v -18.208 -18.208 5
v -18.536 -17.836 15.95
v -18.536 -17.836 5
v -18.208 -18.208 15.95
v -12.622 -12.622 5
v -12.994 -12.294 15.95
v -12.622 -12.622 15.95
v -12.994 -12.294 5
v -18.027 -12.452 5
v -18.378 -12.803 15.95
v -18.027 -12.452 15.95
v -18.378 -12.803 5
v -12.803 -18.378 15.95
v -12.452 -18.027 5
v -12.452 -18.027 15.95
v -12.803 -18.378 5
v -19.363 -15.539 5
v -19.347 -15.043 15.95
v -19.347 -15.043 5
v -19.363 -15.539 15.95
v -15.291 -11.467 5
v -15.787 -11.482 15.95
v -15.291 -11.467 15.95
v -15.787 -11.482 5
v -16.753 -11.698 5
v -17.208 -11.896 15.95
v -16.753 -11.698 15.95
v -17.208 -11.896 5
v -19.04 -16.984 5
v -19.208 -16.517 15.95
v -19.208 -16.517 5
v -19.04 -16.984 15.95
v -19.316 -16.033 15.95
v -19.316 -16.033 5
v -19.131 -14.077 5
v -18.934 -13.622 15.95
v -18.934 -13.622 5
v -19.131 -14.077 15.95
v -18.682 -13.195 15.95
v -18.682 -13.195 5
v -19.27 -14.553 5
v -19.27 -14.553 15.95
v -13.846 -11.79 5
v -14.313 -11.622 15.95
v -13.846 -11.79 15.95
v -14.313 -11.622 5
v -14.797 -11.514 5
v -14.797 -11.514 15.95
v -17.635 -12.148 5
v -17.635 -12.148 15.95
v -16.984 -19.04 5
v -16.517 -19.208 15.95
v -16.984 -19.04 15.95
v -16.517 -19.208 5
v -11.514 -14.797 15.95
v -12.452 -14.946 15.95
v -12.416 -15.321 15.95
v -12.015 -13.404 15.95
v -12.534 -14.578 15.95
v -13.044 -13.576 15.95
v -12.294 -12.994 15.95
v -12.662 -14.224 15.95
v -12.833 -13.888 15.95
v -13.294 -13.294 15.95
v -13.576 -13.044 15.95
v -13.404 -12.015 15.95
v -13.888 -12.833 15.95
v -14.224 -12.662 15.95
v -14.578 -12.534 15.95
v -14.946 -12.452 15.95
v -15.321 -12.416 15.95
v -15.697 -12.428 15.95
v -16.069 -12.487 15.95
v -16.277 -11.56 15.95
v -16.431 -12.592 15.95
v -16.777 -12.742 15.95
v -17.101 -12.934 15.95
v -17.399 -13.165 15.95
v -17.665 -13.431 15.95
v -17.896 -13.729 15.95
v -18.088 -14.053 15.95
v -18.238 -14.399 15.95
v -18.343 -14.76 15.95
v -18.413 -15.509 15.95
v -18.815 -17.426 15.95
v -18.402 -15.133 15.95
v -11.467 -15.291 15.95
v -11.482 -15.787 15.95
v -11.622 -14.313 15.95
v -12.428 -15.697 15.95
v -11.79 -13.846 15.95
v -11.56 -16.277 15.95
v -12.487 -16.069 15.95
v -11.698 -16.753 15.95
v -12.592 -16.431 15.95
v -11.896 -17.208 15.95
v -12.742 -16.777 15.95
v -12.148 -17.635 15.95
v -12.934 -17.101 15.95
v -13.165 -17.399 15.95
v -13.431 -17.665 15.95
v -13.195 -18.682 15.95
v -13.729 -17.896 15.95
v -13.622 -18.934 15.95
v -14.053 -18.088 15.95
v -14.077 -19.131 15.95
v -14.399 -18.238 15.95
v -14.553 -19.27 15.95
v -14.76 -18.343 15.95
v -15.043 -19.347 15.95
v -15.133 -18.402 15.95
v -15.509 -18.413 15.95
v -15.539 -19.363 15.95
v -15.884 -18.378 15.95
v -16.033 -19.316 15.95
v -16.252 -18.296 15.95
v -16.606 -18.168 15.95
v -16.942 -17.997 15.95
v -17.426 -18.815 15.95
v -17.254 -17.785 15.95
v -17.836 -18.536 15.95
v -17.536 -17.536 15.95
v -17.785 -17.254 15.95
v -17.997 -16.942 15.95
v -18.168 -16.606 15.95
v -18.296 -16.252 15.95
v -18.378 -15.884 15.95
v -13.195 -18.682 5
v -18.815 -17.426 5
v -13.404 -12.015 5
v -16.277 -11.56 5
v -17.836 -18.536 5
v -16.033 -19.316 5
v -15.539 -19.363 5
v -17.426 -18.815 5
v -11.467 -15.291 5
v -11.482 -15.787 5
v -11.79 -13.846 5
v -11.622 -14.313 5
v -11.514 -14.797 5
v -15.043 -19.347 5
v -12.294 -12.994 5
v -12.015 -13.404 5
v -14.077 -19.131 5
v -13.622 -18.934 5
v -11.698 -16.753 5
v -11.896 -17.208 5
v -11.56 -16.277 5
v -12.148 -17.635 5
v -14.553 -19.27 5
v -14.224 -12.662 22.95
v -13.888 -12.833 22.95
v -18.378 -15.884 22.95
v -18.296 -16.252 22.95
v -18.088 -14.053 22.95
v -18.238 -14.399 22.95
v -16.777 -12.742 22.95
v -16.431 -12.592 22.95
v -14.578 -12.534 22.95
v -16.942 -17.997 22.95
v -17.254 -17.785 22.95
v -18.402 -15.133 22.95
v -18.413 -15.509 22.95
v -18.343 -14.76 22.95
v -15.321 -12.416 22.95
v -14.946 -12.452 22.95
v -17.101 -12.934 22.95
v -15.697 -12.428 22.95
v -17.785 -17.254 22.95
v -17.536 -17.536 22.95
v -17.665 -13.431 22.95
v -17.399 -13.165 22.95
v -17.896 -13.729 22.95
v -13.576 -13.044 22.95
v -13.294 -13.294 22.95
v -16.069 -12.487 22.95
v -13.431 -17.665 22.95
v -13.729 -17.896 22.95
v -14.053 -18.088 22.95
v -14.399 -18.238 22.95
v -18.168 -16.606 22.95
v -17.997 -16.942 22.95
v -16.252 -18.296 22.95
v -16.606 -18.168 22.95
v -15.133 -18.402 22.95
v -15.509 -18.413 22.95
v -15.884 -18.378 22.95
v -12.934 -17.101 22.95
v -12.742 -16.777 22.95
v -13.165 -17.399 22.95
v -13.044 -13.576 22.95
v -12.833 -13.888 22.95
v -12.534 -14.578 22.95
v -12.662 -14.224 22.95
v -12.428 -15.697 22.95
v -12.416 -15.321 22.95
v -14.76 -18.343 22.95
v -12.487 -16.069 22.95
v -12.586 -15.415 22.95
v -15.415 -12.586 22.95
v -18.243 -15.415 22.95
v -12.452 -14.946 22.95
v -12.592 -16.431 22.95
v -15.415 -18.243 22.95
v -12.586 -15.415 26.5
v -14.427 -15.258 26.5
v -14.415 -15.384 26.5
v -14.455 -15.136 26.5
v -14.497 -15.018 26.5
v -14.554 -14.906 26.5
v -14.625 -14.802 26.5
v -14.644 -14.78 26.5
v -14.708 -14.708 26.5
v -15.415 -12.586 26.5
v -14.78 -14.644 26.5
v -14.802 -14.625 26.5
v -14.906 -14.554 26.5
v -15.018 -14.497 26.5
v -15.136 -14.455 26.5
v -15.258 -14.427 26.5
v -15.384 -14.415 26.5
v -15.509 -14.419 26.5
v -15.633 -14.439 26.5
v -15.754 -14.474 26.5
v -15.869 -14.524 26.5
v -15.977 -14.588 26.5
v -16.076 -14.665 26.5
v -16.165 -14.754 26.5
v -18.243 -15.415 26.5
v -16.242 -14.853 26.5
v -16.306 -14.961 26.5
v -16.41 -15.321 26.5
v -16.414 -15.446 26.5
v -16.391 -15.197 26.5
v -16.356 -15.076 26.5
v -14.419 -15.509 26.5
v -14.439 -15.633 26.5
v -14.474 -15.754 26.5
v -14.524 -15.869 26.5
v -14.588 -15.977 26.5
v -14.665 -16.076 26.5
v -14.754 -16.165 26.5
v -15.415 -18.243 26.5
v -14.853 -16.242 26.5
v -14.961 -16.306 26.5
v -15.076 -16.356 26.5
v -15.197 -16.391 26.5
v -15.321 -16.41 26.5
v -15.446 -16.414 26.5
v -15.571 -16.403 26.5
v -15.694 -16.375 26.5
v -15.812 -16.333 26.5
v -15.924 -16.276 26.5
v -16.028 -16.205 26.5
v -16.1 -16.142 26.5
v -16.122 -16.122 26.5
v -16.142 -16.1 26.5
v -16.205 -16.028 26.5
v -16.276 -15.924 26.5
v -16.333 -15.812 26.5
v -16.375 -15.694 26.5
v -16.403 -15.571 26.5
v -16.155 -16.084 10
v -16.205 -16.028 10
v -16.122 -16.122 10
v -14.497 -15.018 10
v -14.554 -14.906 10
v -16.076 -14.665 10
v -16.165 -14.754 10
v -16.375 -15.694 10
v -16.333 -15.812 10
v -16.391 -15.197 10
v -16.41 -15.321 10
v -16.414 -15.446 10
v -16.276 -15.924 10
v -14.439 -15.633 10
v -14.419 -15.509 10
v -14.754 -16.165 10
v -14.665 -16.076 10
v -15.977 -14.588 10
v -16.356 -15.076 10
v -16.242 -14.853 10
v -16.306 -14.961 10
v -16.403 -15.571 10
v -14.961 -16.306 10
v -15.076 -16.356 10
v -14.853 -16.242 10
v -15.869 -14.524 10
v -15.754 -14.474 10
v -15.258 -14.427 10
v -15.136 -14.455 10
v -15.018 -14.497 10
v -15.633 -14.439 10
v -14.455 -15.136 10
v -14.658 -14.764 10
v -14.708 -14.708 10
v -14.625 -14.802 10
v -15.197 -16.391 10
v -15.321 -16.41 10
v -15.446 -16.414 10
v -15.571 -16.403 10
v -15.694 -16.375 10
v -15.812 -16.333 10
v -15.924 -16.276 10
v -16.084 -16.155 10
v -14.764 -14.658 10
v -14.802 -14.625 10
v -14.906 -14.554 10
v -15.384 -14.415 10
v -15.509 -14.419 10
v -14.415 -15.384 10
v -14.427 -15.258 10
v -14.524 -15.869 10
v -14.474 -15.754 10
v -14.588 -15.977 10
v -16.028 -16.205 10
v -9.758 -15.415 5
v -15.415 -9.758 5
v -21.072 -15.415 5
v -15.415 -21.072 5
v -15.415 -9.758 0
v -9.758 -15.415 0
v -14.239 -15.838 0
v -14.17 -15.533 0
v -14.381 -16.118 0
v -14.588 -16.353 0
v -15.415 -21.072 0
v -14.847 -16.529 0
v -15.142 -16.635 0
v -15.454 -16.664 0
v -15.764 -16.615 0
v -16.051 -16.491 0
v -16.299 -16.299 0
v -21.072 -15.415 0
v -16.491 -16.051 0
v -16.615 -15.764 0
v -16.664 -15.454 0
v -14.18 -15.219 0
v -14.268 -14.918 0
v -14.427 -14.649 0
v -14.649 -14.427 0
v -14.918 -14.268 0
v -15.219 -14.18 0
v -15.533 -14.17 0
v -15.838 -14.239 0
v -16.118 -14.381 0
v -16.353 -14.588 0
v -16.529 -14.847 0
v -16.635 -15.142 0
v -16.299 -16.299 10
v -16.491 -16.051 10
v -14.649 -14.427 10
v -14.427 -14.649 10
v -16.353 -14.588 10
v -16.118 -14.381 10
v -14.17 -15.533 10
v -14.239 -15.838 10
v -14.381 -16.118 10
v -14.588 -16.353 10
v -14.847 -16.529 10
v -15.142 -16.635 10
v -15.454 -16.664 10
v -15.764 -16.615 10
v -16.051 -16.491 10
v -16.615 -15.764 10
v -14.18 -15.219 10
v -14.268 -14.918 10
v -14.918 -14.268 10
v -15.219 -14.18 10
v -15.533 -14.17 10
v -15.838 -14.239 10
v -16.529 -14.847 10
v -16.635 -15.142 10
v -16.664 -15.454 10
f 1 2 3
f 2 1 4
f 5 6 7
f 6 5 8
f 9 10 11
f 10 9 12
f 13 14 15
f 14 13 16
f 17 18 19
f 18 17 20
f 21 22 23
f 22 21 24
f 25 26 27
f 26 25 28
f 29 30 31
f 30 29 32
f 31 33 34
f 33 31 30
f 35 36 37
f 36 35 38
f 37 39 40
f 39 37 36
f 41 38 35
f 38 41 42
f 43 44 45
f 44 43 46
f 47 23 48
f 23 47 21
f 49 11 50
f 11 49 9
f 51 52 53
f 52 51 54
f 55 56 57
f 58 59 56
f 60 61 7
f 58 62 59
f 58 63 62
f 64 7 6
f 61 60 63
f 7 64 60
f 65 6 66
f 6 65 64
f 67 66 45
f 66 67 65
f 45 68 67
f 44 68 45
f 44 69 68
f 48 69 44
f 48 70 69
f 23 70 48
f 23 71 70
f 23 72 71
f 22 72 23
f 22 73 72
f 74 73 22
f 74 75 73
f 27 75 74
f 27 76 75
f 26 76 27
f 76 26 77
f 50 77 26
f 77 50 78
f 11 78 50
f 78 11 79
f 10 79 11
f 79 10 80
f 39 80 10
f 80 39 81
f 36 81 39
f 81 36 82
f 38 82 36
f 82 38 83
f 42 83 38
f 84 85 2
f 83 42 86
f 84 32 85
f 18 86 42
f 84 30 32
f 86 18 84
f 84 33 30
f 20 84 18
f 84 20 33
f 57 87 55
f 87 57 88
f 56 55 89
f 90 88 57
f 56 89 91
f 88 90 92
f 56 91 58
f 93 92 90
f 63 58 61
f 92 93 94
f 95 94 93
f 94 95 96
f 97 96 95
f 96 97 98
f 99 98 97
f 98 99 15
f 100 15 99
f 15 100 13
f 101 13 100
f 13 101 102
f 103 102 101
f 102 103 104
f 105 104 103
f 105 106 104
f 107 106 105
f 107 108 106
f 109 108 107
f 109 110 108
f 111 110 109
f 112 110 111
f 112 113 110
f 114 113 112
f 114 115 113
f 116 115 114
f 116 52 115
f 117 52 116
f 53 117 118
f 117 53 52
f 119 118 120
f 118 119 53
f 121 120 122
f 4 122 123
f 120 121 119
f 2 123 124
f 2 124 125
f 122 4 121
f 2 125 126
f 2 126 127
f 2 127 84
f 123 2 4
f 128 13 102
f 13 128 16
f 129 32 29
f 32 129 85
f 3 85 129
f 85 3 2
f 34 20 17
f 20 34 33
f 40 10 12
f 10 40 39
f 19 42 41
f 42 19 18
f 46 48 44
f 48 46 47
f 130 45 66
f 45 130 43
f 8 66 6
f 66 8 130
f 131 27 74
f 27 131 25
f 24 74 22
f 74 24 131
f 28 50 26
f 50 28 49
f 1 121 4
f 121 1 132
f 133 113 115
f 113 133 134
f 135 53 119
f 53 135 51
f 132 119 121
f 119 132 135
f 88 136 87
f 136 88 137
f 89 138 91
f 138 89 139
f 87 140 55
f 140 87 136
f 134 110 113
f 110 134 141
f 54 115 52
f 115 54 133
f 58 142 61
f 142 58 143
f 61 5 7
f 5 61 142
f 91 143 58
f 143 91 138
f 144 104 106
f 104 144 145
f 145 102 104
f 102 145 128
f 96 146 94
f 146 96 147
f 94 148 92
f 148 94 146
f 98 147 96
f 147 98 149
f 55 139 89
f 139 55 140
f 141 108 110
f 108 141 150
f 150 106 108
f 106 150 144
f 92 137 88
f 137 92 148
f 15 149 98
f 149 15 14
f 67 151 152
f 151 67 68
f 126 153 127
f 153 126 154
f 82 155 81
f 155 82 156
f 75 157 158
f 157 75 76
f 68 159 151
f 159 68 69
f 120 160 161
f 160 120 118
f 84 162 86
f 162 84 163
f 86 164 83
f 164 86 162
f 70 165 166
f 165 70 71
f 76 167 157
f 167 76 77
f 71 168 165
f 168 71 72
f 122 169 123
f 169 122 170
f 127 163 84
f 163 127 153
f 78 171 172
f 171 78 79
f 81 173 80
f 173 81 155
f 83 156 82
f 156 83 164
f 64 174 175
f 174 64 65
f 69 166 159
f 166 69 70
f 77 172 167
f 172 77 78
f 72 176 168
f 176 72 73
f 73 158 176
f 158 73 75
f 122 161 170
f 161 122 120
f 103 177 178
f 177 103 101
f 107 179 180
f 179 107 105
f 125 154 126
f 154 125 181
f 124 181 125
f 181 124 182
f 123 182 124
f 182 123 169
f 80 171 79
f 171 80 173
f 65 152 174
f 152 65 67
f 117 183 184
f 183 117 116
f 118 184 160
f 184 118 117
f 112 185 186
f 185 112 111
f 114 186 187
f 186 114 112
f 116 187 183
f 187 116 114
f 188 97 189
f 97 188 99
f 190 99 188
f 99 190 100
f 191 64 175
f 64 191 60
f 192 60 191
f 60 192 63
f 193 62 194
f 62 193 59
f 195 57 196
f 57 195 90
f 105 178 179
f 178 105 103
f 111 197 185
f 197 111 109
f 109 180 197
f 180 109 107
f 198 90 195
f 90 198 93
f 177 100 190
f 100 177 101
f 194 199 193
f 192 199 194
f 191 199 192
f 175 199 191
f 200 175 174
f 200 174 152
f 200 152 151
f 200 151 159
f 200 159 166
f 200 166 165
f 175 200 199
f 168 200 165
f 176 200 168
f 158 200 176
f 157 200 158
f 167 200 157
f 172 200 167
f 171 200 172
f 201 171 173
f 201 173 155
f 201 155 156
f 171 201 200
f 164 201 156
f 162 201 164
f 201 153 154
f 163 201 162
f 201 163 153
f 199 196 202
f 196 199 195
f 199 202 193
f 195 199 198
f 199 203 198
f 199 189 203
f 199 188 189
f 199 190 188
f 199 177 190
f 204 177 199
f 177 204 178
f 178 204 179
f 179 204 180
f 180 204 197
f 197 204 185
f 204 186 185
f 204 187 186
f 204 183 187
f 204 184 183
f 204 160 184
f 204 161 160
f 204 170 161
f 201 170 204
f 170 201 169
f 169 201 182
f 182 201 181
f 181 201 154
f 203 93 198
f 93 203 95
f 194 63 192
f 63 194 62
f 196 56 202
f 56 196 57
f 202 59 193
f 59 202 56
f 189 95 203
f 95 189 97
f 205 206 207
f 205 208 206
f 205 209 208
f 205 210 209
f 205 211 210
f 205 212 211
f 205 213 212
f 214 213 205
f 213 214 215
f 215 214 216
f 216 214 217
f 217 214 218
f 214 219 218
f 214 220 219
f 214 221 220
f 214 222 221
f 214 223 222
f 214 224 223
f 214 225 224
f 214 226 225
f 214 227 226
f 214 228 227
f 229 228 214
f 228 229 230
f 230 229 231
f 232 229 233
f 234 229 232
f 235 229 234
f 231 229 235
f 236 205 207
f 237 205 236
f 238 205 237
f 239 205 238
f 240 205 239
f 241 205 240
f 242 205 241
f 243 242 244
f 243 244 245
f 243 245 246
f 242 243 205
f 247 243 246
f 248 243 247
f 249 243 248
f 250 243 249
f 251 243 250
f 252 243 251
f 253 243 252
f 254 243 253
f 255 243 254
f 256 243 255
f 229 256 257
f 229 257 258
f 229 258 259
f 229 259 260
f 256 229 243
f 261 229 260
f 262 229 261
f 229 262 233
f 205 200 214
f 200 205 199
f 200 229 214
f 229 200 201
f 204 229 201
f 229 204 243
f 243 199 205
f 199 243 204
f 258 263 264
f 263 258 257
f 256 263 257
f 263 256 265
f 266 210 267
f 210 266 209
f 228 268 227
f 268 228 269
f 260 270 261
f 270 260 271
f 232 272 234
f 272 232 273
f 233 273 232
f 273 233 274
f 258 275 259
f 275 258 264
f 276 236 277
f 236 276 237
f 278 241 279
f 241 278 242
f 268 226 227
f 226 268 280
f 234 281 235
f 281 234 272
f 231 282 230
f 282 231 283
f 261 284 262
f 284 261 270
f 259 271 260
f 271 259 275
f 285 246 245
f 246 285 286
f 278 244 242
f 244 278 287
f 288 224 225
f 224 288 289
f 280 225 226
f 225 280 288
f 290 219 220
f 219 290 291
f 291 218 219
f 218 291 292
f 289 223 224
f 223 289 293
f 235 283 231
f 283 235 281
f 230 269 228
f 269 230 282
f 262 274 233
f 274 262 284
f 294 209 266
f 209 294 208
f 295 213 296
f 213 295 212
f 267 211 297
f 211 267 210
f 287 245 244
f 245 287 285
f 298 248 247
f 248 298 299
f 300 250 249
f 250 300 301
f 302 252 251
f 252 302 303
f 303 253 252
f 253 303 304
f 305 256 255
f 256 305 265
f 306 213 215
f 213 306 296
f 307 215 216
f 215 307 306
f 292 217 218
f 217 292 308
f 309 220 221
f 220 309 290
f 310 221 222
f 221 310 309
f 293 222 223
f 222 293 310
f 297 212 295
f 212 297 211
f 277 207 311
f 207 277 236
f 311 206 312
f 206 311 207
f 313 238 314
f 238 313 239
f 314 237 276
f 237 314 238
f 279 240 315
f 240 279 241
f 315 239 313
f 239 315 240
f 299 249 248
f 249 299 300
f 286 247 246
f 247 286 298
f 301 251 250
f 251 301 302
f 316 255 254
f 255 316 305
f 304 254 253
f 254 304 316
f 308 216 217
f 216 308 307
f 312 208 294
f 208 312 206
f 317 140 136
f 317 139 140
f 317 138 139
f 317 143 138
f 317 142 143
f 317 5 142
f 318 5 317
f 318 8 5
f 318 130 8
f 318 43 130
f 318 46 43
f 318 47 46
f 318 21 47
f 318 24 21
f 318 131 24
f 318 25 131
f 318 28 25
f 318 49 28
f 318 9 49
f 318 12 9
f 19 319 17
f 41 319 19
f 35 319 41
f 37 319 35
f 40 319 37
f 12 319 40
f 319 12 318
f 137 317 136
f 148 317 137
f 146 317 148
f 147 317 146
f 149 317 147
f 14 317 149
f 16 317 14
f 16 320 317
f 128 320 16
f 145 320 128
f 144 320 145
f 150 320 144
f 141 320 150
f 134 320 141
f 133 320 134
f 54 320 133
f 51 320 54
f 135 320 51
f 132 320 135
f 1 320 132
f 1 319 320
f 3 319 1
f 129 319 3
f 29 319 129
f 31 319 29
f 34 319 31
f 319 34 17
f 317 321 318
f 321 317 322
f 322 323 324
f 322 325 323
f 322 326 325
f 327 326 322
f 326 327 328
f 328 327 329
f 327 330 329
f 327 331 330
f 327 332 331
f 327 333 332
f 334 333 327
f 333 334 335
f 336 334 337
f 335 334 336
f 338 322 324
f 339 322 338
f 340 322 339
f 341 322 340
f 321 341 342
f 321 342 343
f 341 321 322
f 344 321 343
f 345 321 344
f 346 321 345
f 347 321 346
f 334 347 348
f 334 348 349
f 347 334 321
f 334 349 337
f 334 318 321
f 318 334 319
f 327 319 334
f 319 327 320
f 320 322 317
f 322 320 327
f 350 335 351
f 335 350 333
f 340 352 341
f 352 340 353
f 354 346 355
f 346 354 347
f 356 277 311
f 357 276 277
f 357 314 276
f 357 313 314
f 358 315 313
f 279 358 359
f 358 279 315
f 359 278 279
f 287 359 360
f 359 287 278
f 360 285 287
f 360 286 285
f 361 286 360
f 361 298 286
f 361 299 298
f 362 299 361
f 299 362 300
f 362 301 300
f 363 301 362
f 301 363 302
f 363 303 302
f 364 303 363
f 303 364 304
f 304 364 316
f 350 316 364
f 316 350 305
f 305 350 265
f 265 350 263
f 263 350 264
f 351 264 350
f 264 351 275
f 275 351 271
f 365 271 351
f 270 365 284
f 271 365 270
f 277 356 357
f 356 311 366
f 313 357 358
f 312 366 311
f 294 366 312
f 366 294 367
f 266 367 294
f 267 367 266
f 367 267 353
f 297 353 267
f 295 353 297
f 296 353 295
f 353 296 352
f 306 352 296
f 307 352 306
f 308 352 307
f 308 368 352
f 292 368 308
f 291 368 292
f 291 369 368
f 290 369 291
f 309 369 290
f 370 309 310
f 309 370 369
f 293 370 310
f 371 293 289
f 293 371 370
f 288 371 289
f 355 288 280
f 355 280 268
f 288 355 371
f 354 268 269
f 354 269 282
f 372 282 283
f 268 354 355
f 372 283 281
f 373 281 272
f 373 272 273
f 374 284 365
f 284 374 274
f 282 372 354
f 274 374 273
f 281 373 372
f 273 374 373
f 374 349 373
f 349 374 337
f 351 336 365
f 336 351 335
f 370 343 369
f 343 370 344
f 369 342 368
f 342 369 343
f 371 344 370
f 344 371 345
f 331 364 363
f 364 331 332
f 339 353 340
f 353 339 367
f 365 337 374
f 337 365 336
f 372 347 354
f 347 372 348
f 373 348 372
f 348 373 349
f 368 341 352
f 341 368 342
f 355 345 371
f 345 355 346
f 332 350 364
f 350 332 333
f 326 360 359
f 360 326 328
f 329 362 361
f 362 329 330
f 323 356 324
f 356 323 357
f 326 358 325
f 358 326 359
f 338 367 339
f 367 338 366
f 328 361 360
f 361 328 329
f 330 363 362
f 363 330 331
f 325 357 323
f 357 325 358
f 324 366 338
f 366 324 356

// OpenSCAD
// file: openscad-extra/src/countersink.scad
/*
Countersink depression for tapered screw heads.
*/

module make_countersink(d1=0, d2=0, h=0, outer=10, inner=0, $fn=25){
    /*
    d1 = shaft diameter
    d2 = head diameter
    h = height of taper
    outer = height of head mass
    inner = height of shaft mass, including taper
    */
    default_taper_height = 2;
    d1 = d1 ? d1 : 2.5;
    d2 = d2 ? d2 : 5;
    h = h ? h : default_taper_height;
    inner = (inner ? inner : 10) - default_taper_height;
    
    translate([0, 0, -default_taper_height/2])
    union(){
        
        // taper
        cylinder(d1=d1, d2=d2, h=h, center=true, $fn=$fn);
    
        // big top
    	translate([0, 0, h/2])
    	cylinder(d=d2, h=outer, center=false, $fn=$fn);
        
    	// lower bottom
    	translate([0, 0, -h/2-inner])
    	cylinder(d=d1, h=inner, center=false, $fn=$fn);
	}
}

make_countersink(inner=10);

color("blue")
translate([0,2,0])
cylinder(d=2.5, h=20, center=true, $fn=100);
// file: leg_hip_holder.scad
use <openscad-extra/src/countersink.scad>;

module leg_hip_holder(show_axle=0){
    axle_offset_z = -22+0.2;
    
    difference(){
        hull(){
            cube([10, 100+10, 5], center=true);
            
            translate([0,0,axle_offset_z])
            cube([10, 30, 30], center=true);
        }
        
        // notch cutout
        color("orange")
        translate([-5/2,0,0])
        cube([5.5, 110, 5.5], center=true);

        // bottom brace cutout
        color("blue")
        translate([0,0,axle_offset_z-30/2+5/2])
        cube([15, 30, 5.5], center=true);

        // body mount holes
        color("red")
        for(i=[0:9])
        translate([0,10*i-45,0])
        rotate([0,90,0])
        cylinder(d=2.5, h=50, center=true, $fn=50);

        // bottom brace mount holes
        color("red")
        for(j=[-1:2:1])
        for(i=[0:2])
        translate([2.5*j,10-10*i,-41.5+5])
        rotate([0,0,0])
        cylinder(d=2.5, h=20, center=true, $fn=50);

        // mass cutouts
        color("red")
        for(i=[-1:2:1]){
            hull(){
            translate([0,15*i,-17])
            rotate([0,90,0])
            // big mass cutouts
            cylinder(d=20, h=50, center=true, $fn=50);
            
            translate([0,35*i,-9.5])
            rotate([0,90,0])
            // small mass cutouts
            cylinder(d=5, h=50, center=true, $fn=50);
            }
        }
        
        // end cutouts
        color("orange")
        for(i=[-1:2:1])
        translate([0,(50+2.5)*i,0])
        cube([30, 5.5, 5.5], center=true);

        // bottom mount mass
        color("green")
        translate([0,0,axle_offset_z])
        translate([-5/2,0,0])
        cube([5.5,8.6,8.6], center=true);

        // axle mounting hole
        translate([0,0,axle_offset_z])
        translate([5,0,0])
        rotate([0,90,0])
        make_countersink(d1=2.5, d2=5, outer=10, inner=40, $fn=25);

    }// end diff

    // mock axle
    if(show_axle)
    translate([0,0,axle_offset_z])        
    rotate([0,90,0])
    color("red")
    cylinder(d=1, h=100, center=true, $fn=50);
    
    
}

module leg_hip_axle(show_axle=0){
    axle_offset_z = -22+0.2;

    translate([0,0,axle_offset_z]){

        difference(){
            union(){
                difference(){
                    union(){
                        rotate([0,90,0]){
                            translate([0,0,-10/2+0.05]){
                                // bearing axle
                                translate([0,0,-11/2])
                                cylinder(d=7.9-0.5+0.5, h=11, center=true, $fn=50);
                                // leg axle
                                color("blue")
                                translate([0,0,-(11+7)/2])
                                cylinder(d=6, h=11+7, center=true, $fn=50);
                            }
                        }
                        // hip cap mount
                        color("purple")
                        translate([-(4+11+7)/2-10-3.5,0,0])
                        cube([4,4,4], center=true);
                    }
                    
                    // screw hole
                    rotate([0,90,0])
                    color("red")
                    cylinder(d=2, h=100, center=true, $fn=50);
                }
                
                // bottom mount mass
                color("green")
                translate([-5/2,0,0])
                cube([5,8,8], center=true);
            }
        
            // axle mounting hole
            translate([5,0,0])
            rotate([0,90,0])
            make_countersink(d1=2.5, d2=5, outer=10, inner=15, $fn=25);
        }
    }
    
}

if(1)
rotate([0,0,45])
rotate([0,90,0])
leg_hip_holder();

if(0)
rotate([0,0,45])
rotate([0,90,0])
leg_hip_axle();
// main file
use <leg_hip_holder.scad>;


if(1)
rotate([0,0,45])
rotate([0,90,0])
leg_hip_axle();
